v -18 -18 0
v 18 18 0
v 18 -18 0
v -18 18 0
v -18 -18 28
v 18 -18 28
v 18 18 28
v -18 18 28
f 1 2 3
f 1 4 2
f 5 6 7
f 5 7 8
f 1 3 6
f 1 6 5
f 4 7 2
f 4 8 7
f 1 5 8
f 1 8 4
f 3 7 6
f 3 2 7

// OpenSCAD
// Gemini 4 Argon Parametric OpenSCAD — PRT-02: Threaded 100× Achromatic Doublet Lens Barrel
$fn = 64;
translate([-18.00, -18.00, 0])
  cube([36, 36, 28]);
